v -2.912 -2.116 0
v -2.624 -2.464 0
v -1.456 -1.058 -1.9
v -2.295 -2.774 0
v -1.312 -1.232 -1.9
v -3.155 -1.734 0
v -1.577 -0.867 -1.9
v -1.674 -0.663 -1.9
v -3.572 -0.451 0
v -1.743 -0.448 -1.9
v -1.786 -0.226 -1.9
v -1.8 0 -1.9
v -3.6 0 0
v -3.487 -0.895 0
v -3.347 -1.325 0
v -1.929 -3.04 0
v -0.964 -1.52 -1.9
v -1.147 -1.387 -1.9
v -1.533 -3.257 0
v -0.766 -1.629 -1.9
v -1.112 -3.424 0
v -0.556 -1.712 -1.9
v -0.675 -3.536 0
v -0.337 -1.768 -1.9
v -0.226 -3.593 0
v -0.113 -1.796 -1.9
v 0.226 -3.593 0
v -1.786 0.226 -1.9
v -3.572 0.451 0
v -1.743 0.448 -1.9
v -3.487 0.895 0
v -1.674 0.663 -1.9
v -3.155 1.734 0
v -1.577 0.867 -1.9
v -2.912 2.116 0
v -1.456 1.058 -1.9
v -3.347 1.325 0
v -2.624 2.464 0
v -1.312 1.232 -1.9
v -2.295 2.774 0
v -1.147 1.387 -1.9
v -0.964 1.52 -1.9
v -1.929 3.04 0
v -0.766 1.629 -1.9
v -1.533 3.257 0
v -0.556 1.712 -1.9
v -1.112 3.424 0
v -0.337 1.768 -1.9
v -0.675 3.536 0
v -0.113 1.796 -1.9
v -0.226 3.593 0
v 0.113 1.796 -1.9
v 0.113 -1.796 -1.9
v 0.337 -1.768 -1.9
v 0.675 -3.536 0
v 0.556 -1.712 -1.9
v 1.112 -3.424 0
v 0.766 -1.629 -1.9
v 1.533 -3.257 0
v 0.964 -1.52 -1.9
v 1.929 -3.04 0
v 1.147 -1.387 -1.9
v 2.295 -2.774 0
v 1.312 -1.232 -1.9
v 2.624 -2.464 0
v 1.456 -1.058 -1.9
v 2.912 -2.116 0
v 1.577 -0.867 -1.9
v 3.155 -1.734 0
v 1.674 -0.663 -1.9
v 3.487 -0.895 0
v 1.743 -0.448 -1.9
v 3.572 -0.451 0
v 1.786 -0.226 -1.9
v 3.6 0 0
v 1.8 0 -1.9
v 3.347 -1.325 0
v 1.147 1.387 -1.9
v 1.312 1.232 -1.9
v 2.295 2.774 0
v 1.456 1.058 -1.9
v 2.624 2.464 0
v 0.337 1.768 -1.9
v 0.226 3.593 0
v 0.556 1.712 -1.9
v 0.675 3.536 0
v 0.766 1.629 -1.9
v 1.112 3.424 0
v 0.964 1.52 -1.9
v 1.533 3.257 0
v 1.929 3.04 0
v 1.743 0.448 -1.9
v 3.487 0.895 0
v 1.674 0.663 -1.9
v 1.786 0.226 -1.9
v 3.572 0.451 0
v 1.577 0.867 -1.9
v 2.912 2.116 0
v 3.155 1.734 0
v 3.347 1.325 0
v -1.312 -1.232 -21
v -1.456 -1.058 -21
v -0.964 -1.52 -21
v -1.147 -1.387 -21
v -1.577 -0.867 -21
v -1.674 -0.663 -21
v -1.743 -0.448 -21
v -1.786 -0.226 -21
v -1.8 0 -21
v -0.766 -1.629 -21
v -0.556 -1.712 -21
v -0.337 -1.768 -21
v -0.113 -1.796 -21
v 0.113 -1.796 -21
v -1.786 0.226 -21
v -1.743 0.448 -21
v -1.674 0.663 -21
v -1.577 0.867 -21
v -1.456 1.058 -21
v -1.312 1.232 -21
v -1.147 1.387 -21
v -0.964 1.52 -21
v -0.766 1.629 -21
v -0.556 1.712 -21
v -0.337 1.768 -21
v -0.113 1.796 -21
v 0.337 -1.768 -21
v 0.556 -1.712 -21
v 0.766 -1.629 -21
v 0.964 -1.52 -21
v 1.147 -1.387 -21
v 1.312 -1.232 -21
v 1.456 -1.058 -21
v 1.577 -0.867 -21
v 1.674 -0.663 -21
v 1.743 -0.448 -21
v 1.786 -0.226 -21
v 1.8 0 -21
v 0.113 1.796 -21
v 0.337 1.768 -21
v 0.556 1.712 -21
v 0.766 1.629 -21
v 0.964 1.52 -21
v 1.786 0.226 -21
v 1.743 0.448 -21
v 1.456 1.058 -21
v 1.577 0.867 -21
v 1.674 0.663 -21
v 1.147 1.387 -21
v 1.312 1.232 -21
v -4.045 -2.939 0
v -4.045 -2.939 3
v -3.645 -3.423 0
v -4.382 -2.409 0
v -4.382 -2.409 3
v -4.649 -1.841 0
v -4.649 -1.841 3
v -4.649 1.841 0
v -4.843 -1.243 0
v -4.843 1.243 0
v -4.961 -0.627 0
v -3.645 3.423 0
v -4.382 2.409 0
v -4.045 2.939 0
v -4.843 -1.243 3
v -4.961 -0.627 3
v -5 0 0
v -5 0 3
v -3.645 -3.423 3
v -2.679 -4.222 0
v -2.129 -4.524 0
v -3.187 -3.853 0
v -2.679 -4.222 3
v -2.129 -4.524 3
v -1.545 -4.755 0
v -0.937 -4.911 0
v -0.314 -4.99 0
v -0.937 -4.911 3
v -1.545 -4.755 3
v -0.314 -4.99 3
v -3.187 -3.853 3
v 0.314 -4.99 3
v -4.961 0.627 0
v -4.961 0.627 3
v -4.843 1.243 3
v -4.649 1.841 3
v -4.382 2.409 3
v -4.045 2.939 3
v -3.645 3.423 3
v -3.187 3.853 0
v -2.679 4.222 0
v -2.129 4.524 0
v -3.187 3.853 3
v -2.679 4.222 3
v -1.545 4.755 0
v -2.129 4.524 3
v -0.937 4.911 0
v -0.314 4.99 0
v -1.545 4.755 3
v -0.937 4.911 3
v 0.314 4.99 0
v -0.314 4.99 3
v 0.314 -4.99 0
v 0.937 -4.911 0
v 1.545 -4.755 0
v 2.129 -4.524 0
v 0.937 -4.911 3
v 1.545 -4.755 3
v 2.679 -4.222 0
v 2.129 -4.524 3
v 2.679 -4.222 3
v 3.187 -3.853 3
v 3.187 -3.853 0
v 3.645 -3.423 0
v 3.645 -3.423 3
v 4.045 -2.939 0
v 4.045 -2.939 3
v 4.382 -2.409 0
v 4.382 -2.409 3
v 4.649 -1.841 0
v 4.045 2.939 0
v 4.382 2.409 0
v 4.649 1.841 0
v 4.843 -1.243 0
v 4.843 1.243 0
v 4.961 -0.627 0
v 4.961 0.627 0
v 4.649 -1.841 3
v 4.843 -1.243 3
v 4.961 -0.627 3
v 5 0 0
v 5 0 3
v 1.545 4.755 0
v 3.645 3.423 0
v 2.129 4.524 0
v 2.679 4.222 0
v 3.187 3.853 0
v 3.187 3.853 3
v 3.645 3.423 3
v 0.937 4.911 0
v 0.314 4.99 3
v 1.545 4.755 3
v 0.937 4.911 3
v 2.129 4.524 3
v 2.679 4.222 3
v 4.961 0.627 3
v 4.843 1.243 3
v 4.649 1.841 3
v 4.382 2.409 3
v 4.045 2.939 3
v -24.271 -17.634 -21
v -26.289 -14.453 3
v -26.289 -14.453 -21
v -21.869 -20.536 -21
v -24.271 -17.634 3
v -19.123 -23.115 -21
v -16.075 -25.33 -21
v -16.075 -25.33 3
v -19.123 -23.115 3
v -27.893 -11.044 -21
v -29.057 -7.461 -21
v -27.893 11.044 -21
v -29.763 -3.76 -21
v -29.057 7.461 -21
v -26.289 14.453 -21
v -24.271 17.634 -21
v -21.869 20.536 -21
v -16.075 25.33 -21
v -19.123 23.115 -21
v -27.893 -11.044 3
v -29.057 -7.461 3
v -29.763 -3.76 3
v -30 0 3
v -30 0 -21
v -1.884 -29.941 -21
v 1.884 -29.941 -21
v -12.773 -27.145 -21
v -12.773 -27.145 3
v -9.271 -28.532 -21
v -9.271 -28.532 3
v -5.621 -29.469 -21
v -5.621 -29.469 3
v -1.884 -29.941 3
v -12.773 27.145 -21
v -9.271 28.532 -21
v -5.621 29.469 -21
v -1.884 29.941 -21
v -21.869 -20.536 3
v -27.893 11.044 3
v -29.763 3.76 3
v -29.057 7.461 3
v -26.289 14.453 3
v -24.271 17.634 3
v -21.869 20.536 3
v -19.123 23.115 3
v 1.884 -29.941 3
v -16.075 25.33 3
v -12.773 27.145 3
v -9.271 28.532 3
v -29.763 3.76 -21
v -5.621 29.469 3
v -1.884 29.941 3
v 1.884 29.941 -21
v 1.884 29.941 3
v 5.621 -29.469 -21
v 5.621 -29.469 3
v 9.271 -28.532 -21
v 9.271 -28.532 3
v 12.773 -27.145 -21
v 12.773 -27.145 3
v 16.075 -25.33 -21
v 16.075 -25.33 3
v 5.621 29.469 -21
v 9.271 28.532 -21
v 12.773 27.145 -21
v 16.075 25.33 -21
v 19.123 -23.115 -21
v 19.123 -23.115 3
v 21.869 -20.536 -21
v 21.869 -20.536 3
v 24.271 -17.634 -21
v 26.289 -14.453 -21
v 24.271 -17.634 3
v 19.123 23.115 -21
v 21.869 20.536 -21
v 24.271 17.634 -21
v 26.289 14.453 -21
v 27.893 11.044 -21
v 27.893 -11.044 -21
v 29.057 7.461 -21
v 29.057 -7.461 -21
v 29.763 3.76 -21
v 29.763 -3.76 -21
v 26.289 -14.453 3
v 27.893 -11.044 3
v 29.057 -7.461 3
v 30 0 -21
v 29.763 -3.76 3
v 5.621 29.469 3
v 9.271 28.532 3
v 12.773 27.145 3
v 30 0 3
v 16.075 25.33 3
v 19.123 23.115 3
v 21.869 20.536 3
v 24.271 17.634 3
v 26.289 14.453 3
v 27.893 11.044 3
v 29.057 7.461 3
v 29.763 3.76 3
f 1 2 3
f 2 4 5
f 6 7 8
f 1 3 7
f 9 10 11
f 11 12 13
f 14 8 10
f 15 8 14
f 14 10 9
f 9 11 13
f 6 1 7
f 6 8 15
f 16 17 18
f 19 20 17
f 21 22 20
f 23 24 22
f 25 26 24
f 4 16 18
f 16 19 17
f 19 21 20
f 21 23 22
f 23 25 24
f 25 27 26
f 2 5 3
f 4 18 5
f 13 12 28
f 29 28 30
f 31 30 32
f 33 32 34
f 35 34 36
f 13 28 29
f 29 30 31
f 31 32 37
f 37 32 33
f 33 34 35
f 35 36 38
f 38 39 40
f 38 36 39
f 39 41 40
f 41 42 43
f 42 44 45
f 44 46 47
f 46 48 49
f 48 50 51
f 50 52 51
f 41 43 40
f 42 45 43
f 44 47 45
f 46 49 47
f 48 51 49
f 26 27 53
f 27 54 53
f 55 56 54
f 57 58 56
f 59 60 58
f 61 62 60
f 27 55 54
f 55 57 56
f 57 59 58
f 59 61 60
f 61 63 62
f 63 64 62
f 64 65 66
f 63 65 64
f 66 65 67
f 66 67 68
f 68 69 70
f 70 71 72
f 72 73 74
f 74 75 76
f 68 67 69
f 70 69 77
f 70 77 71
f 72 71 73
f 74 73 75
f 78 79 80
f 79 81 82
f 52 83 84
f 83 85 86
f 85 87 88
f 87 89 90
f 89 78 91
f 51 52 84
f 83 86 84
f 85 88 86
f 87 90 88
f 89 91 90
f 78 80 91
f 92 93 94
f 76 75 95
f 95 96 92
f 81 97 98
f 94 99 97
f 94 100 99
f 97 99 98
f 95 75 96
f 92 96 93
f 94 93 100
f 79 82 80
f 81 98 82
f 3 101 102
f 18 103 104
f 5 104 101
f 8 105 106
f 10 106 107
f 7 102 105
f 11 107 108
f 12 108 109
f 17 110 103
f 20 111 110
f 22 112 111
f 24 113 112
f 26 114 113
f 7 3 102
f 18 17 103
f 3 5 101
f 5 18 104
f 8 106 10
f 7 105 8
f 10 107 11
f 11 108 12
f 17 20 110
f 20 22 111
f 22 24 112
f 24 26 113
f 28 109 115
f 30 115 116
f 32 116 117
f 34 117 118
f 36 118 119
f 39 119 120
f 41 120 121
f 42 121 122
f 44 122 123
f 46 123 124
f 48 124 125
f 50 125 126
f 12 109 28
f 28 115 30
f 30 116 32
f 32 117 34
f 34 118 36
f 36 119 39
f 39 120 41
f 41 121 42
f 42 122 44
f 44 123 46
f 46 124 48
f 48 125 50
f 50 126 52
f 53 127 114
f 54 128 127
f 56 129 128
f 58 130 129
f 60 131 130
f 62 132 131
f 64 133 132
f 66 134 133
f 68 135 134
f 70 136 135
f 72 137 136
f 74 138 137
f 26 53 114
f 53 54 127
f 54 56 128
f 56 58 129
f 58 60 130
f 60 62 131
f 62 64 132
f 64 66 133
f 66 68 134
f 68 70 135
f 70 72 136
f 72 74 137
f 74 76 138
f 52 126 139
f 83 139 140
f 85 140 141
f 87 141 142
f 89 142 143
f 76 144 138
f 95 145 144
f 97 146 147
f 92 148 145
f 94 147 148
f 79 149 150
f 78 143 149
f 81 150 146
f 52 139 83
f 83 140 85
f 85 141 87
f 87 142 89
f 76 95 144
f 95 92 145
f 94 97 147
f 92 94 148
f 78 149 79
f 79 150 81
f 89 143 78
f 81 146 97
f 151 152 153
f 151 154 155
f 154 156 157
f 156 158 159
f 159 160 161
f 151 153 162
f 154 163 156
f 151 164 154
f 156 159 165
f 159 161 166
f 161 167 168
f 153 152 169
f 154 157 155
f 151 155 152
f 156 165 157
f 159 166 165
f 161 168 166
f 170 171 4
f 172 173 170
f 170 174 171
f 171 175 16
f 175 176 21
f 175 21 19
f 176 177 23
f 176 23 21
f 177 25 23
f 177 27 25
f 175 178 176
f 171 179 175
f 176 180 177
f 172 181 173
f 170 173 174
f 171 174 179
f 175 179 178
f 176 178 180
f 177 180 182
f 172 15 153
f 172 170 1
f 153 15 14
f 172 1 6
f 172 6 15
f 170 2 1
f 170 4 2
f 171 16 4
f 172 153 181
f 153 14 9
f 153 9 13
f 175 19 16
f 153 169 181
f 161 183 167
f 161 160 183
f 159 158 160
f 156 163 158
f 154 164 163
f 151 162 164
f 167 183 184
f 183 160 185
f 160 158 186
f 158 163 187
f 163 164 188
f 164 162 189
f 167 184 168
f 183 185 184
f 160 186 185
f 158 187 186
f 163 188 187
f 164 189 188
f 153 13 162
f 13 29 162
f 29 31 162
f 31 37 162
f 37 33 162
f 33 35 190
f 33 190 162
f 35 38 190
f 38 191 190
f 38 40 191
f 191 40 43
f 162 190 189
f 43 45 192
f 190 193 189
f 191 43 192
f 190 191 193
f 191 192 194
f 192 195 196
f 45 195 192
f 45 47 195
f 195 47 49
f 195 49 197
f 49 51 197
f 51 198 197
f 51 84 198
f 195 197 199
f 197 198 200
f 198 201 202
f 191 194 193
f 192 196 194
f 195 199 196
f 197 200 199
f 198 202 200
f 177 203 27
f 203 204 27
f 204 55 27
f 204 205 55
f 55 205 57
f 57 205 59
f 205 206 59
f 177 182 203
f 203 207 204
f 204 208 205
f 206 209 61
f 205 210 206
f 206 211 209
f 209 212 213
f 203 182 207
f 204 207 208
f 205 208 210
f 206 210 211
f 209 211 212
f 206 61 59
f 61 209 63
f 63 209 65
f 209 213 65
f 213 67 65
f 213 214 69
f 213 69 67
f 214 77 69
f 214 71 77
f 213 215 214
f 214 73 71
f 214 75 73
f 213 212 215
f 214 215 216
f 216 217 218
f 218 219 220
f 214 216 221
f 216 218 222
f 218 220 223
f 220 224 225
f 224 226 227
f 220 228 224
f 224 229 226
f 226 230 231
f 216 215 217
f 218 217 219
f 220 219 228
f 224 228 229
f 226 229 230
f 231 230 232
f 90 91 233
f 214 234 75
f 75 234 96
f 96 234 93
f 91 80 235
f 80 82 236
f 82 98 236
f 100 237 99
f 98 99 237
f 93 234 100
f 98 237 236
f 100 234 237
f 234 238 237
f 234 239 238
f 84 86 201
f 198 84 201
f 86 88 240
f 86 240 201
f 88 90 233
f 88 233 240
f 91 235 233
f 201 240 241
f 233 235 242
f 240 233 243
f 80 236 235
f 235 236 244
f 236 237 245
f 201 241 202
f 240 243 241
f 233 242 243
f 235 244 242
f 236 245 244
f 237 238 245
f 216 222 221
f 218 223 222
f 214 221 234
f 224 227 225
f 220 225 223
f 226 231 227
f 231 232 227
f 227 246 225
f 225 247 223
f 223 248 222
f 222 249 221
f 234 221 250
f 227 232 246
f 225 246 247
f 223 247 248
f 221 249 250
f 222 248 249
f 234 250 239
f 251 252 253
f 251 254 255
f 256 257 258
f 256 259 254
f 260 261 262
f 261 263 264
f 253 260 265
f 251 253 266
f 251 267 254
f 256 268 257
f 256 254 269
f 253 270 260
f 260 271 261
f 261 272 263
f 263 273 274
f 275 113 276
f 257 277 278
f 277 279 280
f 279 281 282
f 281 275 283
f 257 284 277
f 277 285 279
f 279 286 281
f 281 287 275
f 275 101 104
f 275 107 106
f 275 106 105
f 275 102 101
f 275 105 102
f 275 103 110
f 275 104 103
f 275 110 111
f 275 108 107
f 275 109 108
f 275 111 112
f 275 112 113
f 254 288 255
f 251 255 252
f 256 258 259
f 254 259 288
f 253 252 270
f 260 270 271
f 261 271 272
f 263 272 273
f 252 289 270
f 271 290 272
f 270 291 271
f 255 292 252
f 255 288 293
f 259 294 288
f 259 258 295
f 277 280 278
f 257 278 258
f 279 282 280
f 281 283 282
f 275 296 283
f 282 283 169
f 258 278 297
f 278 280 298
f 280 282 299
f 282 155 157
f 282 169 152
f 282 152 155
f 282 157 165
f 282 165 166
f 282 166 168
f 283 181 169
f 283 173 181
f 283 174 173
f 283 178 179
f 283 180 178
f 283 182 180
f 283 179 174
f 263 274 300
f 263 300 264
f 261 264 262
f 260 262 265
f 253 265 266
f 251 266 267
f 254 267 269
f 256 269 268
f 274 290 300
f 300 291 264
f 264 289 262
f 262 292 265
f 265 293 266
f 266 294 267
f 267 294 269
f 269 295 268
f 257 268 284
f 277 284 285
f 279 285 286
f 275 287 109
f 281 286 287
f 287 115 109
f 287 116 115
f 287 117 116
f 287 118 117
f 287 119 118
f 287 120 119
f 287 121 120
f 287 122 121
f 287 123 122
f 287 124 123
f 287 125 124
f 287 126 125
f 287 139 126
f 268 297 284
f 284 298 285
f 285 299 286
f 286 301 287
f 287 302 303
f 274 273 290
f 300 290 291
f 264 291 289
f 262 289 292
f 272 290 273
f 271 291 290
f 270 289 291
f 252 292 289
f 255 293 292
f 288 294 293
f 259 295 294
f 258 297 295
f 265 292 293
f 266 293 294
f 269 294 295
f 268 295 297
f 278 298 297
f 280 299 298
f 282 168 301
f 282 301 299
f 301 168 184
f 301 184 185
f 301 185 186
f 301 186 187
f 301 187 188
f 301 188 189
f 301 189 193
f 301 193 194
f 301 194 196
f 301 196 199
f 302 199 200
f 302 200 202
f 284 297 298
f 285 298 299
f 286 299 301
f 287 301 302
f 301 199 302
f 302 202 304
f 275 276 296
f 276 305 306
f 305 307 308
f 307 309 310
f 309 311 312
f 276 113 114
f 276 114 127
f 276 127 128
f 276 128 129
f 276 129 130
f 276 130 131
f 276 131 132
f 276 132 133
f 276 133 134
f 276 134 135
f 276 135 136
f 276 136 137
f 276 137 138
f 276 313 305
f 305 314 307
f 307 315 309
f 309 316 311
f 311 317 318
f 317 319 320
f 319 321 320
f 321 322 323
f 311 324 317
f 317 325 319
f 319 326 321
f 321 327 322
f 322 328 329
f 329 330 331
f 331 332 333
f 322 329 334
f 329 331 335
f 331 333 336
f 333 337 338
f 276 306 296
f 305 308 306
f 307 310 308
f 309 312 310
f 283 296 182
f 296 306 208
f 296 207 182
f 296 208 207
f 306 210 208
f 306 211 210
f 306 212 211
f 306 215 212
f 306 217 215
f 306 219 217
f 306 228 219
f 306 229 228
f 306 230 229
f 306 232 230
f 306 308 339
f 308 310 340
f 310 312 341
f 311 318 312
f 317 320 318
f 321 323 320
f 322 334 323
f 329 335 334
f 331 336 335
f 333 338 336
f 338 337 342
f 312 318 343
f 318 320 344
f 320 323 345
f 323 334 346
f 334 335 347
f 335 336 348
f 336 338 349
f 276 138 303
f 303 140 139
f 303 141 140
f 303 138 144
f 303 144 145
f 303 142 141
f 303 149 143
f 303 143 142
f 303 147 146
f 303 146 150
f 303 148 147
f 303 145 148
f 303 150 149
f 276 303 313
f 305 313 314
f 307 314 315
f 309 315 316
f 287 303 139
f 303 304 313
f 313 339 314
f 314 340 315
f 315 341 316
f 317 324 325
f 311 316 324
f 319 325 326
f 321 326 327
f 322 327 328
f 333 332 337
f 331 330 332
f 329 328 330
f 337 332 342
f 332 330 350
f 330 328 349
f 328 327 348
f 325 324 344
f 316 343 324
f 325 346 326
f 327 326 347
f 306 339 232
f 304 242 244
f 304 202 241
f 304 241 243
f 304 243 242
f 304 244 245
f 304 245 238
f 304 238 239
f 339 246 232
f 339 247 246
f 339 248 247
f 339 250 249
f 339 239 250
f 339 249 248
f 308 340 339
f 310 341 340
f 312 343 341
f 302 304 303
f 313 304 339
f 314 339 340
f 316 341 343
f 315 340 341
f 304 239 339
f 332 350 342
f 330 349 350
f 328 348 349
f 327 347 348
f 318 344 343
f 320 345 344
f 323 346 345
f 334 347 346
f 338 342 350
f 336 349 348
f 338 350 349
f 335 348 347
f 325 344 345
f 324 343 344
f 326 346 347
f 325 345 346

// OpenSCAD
$fn = 50;

difference() {
	union() {
		translate(v = [0, 0, -21.0]) {
			cylinder(h = 24, r = 30.0);
		}
	}
	union() {
		translate(v = [0, 0, 0]) {
			rotate(a = [0, 0, 0]) {
				difference() {
					union() {
						translate(v = [0, 0, -24.0]) {
							cylinder(h = 24, r = 1.5);
						}
						translate(v = [0, 0, -1.9]) {
							cylinder(h = 1.9, r1 = 1.8, r2 = 3.6);
						}
						translate(v = [0, 0, -24.0]) {
							cylinder(h = 24, r = 1.8);
						}
						translate(v = [0, 0, -24.0]) {
							cylinder(h = 24, r = 1.5);
						}
					}
					union();
				}
			}
		}
		#cylinder(h = 3, r = 5.0);
	}
}
